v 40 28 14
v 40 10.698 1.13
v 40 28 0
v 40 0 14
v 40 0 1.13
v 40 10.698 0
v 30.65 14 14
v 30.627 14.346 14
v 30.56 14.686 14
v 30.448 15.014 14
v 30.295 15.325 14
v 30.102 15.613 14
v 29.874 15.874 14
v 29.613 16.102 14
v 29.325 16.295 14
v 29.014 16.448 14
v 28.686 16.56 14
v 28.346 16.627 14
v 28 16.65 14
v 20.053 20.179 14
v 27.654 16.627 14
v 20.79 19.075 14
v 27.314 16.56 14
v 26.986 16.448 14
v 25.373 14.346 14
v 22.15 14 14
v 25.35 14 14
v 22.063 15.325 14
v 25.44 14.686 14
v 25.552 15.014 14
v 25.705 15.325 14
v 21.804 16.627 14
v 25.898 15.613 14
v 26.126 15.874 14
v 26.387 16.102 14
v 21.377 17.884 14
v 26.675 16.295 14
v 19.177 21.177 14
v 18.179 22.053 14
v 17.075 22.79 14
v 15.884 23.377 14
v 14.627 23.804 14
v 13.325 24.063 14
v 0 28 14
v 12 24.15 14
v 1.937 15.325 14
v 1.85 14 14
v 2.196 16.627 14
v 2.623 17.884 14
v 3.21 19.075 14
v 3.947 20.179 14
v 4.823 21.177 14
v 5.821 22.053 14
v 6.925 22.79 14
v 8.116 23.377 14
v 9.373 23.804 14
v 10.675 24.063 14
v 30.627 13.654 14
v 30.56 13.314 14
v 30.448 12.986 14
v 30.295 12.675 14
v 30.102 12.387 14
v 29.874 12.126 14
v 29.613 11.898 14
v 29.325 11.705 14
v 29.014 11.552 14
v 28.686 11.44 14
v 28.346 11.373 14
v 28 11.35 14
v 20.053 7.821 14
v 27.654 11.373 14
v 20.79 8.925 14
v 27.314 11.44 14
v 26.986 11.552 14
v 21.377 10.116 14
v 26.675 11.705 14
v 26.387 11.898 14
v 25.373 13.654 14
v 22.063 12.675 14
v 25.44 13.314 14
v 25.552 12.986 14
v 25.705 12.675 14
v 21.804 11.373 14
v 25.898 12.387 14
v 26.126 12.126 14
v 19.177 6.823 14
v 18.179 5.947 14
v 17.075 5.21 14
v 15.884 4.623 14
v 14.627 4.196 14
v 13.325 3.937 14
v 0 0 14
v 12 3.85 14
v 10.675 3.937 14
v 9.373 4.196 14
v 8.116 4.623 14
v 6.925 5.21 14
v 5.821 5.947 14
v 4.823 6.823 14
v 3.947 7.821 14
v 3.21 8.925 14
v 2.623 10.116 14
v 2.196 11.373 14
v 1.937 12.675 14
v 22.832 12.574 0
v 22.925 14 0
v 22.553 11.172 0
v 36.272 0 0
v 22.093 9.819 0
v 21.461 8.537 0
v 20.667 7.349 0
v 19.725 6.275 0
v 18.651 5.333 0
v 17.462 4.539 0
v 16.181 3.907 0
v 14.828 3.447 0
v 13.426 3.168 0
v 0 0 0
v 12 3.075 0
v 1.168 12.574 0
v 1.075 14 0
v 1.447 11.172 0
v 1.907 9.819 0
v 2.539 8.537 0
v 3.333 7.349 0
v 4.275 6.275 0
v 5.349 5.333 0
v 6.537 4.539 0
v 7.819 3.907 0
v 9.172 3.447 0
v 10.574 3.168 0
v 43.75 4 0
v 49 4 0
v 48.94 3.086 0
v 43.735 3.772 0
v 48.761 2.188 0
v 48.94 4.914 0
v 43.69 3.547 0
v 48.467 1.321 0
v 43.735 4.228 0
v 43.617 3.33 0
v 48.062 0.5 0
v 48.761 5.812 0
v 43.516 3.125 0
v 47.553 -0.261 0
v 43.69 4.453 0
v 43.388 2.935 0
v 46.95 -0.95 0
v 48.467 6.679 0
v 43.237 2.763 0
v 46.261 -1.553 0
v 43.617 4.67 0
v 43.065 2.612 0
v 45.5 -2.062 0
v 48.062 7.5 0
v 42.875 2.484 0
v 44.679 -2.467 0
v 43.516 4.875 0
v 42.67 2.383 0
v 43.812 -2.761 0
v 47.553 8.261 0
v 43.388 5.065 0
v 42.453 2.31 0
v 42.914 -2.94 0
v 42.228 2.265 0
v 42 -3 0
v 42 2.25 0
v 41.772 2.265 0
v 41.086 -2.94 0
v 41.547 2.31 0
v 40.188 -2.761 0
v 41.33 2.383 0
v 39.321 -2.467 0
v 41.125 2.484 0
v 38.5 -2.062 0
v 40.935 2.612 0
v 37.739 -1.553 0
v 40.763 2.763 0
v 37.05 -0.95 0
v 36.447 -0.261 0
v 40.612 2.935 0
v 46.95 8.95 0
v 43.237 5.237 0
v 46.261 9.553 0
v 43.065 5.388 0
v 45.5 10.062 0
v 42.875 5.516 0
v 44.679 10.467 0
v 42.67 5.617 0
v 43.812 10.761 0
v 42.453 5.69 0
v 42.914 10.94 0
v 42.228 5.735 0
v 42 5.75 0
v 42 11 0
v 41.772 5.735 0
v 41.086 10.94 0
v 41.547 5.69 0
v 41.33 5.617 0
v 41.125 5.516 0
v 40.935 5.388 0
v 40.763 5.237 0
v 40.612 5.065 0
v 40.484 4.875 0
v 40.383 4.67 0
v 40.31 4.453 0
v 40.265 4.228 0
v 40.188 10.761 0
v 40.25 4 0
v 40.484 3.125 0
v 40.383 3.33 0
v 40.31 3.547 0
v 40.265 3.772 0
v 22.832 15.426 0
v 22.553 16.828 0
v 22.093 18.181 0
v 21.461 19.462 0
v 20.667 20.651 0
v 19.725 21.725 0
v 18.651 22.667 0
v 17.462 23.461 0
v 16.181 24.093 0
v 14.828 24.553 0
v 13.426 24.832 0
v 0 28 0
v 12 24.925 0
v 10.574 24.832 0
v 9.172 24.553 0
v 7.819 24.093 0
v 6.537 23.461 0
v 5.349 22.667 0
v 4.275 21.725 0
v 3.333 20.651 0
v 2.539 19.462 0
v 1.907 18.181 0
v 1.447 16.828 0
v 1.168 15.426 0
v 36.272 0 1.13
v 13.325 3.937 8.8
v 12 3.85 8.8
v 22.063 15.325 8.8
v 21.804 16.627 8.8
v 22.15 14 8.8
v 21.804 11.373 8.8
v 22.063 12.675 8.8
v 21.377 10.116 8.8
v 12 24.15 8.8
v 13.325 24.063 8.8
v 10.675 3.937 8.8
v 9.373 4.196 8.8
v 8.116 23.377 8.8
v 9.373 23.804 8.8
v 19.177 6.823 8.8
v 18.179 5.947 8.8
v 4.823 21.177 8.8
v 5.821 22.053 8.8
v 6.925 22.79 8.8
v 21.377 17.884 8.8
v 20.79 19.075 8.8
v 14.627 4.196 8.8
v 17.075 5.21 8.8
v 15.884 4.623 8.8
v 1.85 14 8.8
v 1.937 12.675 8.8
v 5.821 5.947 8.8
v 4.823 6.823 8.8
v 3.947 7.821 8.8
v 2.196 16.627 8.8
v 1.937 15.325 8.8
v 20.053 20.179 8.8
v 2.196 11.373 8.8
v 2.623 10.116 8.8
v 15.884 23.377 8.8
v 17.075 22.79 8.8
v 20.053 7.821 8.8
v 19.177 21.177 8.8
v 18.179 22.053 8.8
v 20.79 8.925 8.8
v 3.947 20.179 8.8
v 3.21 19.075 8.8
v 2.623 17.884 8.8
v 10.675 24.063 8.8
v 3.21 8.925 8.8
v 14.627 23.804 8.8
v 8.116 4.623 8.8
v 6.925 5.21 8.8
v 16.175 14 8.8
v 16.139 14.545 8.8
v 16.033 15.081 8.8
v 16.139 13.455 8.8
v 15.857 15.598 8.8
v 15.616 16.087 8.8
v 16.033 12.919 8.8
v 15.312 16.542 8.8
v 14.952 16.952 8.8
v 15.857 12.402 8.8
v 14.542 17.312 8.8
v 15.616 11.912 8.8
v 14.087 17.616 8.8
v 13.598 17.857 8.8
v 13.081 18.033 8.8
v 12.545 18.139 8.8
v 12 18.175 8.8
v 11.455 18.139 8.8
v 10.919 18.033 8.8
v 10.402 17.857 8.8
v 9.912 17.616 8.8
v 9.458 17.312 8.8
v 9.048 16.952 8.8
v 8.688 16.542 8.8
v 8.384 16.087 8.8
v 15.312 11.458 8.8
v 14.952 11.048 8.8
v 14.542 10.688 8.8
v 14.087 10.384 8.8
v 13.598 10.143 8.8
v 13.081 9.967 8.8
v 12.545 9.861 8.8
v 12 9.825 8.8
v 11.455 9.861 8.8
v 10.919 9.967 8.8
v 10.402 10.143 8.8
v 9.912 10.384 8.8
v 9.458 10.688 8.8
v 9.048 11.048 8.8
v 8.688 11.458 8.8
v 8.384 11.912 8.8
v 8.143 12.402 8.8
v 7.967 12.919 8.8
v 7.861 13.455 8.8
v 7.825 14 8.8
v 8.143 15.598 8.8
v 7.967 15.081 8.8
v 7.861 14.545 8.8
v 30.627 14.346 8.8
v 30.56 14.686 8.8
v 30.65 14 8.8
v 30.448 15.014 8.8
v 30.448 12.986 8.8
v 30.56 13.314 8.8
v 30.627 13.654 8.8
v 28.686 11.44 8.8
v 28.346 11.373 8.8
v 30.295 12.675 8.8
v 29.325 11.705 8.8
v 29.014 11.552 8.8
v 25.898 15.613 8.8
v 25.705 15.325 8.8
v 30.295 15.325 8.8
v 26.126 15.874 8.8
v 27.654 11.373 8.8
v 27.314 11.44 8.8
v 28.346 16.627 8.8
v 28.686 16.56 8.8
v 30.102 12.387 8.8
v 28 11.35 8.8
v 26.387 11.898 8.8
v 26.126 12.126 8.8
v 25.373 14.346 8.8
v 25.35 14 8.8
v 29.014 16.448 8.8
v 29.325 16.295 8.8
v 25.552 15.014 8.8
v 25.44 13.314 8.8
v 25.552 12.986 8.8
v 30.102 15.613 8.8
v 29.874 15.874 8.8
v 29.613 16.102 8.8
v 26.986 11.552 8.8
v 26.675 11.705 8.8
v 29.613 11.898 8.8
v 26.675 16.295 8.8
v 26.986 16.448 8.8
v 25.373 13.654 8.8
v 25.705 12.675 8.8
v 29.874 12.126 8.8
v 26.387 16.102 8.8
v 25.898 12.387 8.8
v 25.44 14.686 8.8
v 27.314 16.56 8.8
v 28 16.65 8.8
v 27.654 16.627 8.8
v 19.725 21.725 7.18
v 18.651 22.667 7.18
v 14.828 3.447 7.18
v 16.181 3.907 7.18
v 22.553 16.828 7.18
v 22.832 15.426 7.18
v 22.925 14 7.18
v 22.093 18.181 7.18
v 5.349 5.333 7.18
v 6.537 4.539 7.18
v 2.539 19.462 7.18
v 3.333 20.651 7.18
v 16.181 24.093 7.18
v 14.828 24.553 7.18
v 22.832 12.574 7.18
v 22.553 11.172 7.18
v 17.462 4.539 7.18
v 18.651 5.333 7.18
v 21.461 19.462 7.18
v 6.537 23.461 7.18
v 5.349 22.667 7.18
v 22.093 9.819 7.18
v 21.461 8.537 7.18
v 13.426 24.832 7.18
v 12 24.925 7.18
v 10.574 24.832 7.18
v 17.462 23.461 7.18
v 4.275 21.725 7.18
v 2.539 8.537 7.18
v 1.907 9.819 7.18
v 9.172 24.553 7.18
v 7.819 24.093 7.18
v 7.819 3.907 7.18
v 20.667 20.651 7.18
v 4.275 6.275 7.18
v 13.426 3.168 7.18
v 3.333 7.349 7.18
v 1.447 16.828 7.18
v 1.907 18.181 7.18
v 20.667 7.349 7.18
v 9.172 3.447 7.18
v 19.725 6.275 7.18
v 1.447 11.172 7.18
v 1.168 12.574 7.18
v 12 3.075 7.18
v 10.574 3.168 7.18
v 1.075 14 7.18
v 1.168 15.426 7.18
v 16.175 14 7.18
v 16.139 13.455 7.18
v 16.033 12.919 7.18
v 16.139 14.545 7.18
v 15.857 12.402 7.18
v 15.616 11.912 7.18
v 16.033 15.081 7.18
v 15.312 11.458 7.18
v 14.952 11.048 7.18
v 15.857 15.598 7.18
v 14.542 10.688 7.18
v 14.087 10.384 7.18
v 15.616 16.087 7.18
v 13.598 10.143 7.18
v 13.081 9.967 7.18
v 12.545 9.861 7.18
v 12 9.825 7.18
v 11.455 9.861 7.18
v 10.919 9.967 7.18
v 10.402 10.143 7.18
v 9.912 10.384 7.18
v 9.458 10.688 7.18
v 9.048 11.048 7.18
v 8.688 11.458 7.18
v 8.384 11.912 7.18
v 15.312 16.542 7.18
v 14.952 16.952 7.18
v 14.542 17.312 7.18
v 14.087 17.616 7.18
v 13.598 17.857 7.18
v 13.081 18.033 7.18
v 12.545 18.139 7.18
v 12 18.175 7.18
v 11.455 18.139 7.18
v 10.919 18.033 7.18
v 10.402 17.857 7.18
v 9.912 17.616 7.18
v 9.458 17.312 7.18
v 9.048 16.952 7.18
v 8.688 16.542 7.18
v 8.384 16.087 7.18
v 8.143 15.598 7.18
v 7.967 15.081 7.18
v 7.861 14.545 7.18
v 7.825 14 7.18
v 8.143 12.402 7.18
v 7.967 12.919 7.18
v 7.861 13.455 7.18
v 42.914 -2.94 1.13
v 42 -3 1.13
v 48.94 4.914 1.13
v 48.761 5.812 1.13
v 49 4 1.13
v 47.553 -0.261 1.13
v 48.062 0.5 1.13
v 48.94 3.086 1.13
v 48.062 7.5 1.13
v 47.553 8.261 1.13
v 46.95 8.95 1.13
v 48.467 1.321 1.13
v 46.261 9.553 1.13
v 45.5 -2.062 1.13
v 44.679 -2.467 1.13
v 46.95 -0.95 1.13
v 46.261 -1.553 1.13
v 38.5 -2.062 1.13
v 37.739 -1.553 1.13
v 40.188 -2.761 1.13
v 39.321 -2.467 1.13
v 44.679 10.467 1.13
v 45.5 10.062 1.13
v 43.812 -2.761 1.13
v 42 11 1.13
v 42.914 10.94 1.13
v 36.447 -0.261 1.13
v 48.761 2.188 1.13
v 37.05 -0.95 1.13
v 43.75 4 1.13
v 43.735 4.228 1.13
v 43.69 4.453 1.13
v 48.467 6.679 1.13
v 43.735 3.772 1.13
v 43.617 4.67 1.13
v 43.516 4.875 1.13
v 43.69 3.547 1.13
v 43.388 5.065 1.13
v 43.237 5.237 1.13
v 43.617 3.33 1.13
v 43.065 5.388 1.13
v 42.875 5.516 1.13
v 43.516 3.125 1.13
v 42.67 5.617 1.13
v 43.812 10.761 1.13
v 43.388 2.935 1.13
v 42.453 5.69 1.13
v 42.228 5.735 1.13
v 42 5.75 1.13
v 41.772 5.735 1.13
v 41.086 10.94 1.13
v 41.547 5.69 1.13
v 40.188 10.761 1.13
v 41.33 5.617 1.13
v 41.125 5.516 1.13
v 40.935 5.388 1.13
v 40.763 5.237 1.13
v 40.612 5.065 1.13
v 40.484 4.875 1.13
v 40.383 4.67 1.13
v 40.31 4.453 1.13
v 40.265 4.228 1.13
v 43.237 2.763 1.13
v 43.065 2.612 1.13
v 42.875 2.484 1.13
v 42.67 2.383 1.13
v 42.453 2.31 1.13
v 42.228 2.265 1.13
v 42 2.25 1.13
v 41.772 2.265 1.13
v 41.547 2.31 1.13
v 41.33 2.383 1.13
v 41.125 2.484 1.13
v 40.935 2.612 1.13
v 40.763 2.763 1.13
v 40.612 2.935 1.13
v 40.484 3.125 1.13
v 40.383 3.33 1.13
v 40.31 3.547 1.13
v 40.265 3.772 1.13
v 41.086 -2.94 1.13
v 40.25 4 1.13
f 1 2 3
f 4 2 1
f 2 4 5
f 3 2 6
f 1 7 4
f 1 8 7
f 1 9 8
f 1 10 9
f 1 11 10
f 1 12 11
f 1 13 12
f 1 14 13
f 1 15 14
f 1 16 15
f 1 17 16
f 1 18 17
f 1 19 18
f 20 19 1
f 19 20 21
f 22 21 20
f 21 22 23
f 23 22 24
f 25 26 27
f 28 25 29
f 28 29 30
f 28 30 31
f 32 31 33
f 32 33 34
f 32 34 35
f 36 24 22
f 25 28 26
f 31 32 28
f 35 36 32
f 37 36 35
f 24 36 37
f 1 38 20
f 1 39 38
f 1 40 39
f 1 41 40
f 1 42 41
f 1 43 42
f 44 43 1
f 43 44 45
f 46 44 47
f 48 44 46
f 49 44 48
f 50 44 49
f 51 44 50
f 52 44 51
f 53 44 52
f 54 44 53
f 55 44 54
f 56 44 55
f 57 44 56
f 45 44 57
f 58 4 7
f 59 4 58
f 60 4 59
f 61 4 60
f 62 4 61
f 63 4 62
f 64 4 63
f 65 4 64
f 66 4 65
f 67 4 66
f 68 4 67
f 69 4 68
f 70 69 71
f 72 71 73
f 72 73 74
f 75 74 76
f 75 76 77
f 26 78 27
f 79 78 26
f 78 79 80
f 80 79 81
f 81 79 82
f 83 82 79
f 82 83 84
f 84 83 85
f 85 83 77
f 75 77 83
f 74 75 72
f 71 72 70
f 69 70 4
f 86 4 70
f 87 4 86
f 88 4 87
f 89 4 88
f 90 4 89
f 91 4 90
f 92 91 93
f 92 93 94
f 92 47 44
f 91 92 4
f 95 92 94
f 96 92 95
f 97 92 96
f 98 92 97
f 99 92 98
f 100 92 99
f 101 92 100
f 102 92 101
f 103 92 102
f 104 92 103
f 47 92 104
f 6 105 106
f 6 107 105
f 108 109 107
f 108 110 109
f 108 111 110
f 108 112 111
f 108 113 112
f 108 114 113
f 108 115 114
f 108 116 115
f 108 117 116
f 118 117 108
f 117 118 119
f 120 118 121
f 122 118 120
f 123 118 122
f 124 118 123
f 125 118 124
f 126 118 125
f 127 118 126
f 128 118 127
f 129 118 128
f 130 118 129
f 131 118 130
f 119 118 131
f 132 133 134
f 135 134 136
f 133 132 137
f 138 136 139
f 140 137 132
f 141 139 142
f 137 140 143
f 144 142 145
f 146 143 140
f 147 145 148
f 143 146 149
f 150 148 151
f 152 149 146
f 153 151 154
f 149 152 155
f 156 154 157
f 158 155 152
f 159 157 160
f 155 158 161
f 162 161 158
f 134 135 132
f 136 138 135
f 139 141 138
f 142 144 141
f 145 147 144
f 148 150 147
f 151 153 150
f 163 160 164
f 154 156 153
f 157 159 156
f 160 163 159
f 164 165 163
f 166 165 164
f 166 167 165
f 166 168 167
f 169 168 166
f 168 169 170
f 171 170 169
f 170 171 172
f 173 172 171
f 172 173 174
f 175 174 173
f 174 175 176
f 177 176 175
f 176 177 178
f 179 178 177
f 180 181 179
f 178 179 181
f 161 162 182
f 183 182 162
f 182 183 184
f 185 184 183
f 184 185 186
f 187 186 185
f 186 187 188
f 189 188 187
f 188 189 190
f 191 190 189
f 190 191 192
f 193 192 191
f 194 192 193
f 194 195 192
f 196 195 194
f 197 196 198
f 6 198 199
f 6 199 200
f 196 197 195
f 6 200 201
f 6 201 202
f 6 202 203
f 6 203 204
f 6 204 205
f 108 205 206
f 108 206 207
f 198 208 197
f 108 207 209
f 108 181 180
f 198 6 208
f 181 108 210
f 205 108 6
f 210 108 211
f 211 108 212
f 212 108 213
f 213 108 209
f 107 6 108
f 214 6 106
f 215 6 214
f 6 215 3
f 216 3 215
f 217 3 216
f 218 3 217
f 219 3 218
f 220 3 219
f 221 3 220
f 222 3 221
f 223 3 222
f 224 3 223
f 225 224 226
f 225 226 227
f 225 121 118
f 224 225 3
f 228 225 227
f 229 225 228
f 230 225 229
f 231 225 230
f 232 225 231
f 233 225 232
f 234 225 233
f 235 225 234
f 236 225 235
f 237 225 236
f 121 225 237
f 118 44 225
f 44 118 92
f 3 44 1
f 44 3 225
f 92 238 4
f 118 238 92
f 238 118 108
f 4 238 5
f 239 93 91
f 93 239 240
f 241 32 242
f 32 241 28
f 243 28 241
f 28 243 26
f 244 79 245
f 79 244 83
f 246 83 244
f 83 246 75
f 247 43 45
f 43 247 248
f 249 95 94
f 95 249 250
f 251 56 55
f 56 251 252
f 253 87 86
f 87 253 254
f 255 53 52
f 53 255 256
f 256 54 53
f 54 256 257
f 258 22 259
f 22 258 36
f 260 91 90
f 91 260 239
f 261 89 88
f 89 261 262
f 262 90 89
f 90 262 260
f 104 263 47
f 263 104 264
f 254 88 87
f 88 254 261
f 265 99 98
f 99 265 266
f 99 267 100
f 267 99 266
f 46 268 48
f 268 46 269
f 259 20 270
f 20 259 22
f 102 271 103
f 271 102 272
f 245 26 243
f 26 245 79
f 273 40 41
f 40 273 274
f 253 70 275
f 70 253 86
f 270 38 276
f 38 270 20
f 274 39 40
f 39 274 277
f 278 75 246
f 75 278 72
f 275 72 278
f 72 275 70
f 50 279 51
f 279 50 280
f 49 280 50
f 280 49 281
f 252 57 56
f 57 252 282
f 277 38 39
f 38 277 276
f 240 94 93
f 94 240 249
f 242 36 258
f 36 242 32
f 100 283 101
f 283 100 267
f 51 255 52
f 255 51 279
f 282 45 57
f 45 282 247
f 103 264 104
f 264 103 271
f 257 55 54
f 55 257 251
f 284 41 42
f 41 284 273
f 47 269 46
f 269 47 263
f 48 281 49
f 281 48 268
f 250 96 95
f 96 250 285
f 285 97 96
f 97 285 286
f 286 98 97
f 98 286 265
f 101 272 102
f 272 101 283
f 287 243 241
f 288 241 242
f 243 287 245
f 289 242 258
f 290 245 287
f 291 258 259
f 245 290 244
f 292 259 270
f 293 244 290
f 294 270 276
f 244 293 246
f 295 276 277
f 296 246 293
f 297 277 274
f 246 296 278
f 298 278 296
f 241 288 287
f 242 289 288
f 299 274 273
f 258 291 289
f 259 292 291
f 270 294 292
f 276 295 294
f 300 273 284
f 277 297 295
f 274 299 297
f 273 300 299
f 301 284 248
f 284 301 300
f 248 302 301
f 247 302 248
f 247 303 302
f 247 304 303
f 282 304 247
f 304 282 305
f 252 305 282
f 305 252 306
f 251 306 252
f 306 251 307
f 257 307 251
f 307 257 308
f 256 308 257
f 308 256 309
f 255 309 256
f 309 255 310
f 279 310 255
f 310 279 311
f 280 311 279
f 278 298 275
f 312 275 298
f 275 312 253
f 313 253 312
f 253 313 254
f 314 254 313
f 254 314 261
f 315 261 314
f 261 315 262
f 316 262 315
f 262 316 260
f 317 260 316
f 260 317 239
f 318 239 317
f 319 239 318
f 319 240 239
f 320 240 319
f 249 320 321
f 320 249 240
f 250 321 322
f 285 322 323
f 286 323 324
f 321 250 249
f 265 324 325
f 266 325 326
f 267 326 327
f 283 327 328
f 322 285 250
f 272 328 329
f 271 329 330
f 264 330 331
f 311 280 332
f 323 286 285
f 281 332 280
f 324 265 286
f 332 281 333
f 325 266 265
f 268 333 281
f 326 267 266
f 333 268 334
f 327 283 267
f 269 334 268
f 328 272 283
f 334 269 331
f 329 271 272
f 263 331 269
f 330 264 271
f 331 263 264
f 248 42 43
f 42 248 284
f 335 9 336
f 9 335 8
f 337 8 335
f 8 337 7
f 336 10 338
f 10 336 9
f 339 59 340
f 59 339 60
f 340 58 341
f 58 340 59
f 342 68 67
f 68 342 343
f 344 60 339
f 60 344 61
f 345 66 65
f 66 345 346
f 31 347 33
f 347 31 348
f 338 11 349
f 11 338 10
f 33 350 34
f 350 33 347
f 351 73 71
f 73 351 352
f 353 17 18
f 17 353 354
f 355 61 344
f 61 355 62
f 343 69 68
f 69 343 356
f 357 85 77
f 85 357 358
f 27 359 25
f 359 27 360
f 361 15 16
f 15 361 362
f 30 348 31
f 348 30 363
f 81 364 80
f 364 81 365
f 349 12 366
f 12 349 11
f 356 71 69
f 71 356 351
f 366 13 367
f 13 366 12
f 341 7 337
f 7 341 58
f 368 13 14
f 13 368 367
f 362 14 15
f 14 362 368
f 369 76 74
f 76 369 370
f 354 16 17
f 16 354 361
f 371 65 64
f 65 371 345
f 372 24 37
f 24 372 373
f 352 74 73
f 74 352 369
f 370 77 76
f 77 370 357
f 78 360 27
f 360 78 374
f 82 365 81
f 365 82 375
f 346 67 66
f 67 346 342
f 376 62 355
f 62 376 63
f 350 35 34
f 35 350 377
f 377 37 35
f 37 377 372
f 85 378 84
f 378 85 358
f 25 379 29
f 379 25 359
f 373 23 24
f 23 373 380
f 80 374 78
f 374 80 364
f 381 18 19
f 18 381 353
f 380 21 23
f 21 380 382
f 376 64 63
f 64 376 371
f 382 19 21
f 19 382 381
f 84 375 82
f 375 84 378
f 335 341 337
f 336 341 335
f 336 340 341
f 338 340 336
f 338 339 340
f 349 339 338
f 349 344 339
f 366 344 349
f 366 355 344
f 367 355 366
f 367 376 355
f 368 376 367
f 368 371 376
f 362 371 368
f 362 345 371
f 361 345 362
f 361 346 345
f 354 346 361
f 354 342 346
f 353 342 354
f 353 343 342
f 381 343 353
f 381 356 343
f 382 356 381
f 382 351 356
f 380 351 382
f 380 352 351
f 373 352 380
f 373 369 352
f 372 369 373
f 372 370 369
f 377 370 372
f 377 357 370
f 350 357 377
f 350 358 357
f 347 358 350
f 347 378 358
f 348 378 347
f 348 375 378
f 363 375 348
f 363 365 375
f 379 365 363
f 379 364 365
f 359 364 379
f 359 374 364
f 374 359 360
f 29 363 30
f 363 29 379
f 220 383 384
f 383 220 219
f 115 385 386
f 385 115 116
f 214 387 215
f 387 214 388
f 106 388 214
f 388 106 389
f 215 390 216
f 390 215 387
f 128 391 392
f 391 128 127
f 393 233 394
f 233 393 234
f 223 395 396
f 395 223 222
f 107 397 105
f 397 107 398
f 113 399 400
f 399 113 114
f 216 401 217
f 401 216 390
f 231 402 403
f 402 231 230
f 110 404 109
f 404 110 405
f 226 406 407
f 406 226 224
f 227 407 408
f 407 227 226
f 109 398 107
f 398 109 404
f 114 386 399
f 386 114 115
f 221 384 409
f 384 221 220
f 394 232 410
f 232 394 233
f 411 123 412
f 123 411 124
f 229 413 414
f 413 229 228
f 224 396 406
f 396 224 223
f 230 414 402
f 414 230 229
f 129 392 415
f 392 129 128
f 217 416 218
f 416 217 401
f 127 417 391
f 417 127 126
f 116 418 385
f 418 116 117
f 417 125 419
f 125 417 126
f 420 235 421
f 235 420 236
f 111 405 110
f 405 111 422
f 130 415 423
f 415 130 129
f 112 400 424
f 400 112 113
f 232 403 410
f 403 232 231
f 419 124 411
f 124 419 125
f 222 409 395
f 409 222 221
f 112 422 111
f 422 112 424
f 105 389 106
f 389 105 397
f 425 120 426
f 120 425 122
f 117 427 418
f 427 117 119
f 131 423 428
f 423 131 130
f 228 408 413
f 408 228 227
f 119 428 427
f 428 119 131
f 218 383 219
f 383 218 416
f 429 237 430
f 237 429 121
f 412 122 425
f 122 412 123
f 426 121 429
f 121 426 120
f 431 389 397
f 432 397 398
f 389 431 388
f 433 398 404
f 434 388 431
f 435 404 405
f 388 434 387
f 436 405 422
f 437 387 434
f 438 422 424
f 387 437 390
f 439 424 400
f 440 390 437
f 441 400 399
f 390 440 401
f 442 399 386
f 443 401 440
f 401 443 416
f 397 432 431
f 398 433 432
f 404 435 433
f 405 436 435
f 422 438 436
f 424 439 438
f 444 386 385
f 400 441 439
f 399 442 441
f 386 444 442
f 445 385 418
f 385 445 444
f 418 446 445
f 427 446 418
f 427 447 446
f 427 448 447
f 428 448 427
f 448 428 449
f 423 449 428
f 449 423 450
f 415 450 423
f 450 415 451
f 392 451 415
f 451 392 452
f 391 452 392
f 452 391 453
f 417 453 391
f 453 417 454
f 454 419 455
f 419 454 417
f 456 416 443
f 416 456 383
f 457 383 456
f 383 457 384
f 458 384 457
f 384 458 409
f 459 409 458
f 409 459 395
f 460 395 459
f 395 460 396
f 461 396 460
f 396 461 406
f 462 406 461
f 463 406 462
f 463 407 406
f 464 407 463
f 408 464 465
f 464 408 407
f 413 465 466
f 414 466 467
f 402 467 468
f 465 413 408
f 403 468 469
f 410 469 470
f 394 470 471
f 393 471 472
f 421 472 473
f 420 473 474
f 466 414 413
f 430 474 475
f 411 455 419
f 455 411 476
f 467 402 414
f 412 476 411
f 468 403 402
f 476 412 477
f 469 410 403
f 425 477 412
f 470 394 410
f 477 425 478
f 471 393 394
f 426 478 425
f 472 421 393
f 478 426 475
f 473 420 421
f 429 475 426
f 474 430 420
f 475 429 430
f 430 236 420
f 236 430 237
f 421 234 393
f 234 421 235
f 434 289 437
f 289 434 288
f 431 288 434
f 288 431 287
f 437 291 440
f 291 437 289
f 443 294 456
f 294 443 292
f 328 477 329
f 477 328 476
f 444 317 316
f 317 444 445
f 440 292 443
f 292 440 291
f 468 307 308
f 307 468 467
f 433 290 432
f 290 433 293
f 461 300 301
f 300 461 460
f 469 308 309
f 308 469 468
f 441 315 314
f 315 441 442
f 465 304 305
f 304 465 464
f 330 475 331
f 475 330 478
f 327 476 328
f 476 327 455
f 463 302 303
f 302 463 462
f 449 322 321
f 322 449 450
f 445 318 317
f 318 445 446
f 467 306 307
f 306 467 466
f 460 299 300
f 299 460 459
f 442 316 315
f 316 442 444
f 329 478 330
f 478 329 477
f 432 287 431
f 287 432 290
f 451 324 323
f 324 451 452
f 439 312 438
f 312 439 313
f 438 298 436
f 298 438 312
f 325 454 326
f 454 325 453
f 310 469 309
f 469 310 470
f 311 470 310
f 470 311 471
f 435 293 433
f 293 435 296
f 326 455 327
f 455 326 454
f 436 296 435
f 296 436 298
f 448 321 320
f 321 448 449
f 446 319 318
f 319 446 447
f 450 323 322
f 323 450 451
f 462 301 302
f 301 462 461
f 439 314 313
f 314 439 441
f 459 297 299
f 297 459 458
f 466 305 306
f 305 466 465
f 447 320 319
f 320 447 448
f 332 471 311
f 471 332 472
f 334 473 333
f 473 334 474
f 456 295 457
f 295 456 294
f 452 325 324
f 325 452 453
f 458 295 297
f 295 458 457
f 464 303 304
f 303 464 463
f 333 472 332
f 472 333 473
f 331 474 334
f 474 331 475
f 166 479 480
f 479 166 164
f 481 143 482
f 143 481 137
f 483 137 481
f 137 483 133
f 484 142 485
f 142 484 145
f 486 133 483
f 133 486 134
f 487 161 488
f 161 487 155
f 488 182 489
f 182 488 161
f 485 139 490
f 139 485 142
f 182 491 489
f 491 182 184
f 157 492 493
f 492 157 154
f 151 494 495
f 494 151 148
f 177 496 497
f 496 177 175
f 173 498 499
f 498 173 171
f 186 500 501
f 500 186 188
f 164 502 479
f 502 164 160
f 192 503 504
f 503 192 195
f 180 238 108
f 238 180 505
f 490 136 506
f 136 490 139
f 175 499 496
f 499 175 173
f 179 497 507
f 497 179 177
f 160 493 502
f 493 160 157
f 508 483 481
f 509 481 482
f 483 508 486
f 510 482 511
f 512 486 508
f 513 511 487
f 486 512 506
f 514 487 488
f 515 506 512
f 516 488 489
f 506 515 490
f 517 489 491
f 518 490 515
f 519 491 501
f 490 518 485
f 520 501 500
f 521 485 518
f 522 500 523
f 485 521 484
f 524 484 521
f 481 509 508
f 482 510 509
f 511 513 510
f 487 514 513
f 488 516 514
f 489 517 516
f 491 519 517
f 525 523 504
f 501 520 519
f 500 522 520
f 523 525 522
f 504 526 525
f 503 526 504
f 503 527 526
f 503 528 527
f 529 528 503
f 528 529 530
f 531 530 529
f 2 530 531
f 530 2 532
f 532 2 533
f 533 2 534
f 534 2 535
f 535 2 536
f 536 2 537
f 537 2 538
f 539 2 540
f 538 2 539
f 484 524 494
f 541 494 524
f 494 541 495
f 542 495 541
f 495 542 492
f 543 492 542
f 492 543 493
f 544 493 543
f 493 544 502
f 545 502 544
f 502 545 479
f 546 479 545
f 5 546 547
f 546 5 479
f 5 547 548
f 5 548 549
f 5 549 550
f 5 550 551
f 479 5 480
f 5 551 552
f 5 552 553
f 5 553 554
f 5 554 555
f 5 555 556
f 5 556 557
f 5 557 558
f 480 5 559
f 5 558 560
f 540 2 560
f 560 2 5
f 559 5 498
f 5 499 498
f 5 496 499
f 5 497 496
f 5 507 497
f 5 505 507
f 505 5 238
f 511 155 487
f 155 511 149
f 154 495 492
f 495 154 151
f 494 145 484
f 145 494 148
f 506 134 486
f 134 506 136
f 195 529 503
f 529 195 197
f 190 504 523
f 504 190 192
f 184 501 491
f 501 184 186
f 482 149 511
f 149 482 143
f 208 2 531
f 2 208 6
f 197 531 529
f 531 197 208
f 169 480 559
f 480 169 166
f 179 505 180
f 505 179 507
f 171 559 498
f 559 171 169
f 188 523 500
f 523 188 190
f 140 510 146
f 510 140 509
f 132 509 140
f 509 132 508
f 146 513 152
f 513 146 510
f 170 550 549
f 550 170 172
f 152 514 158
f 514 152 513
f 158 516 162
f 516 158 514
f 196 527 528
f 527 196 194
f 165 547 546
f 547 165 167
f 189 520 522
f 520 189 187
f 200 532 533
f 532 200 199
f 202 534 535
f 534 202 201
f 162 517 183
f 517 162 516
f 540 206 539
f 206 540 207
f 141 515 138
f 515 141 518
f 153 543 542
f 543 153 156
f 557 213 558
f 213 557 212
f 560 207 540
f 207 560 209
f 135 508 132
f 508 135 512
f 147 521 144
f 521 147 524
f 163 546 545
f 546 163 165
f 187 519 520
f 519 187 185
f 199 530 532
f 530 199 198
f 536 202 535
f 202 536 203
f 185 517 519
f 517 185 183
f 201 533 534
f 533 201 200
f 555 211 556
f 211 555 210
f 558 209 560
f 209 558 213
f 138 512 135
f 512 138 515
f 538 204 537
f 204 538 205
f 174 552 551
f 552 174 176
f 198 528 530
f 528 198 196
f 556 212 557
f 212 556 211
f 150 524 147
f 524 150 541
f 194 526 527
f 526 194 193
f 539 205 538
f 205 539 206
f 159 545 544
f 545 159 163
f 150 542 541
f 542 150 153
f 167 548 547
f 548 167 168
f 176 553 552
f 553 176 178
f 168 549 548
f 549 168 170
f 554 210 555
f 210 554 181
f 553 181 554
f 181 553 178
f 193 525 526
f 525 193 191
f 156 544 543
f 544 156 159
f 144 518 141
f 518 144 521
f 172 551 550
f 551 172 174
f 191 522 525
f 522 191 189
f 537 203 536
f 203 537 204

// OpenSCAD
// file: parameters.scad
// =============================================================================
// Gen-AN Dual-rotor copper-centroid hyper AFPM - WOUND-AWARE (HARD GATE)
// PRIMARY challenger vs Gen-AK. Magnets @ R=39.5 + 200 t + former_web 1.30 -> m2m 4.76.
// =============================================================================

// --- Wire / wind budget (26 AWG, ~1 lb spool ~ 390 m bare-equiv) --------------
wire_awg            = 26;
wire_od             = 0.45;     // insulated OD mm
turns               = 200;      // +10 vs Gen-AK 190
fill                = 0.70;
layers_per_face     = 2;        // axial layers proud of EACH flange
wind_build_axial    = layers_per_face * wire_od * fill;   // 0.63 mm
wind_build_radial   = 3 * wire_od * fill;                 // 0.945 mm

// --- Pancake former (bare STL) -----------------------------------------------
coil_id_r           = 15.5;     // copper-centroid window centered ~R=39.5
coil_od_r           = 63.5;
span_deg            = 26.0;     // 12 stations x 30 deg pitch
former_web          = 1.30;     // thinner vs AK 1.40 (print-safe >=1.30)
flange_t            = 0.60;
wall                = 1.2;
slot_w              = 2.4;
mount_hole          = 3.5;
tab_len             = 7.0;

former_bare_h       = former_web + 2 * flange_t;            // 2.50 mm
coil_envelope_h     = former_bare_h + 2 * wind_build_axial; // 3.76 mm

// --- Running clearance (magnet face -> WOUND face) EACH side ------------------
run_clear           = 0.50;     // PASS floor >= 0.5
gap_spacer_h        = run_clear + wind_build_axial;         // 1.13 mm
m2m                 = coil_envelope_h + 2 * run_clear;      // 4.76 mm (beats Gen-AK 4.86)

// --- Mid stator (12 pancakes 3ph; winds proud both faces) ---------------------
coil_stations       = 12;
bay_r_in            = coil_id_r - 2.0 - wind_build_radial;
bay_r_out           = coil_od_r + 2.0 + wind_build_radial;
bay_span            = span_deg + 4.0;
bay_offset          = 2.0;
stator_thick        = former_bare_h;                        // winds proud +/-Z
stator_od           = 160.0;
shaft_clear_stator  = 34.0;
coil_mount_r        = 25.5;

// --- Rotors (x2) - 8xO20 @ R=39.5 (copper centroid) + 24xO5 Halbach ----------
large_pocket_d      = 20.3;
small_pocket_d      = 5.3;
pocket_h            = 5.2;
large_n             = 8;
R_large             = 39.5;     // covers ~29.5-49.5 over copper centroid ~39.5
R_small_inner       = 24.5;
R_small_mid         = 39.5;
R_small_outer       = 56.5;
carrier_od          = 156.0;
carrier_thick       = 7.5;
hub_h               = 10.0;
hub_od              = 30.0;
rotor_b_offset_deg  = 22.5;

// --- Modular MAX interface (Gen-E family) ------------------------------------
shaft_bore          = 8.35;
bearing_d           = 21.85;
bearing_h           = 7.2;
m3_clear            = 3.5;
bolt_r_inner        = 36.0;
bolt_n_inner        = 6;
flange_bolt_r       = 72.0;
flange_bolt_n       = 6;
brace_r             = 68.0;
brace_d             = 4.3;
brace_n             = 4;

spacer_pad_od       = 14.0;
spacer_pad_id       = m3_clear;
endbell_od          = 160.0;
endbell_thick       = 8.0;
endbell_shaft_clear = 10.0;

$fn = 64;
// main file
// Gen-AN fit coupon — magnet pockets + 608 + spacer height
include <parameters.scad>;
$fn = 48;
block_w = 40; block_d = 28; block_h = 14;
difference() {
    cube([block_w, block_d, block_h]);
    translate([12, block_d/2, block_h - pocket_h])
        cylinder(d=large_pocket_d, h=pocket_h + 0.2);
    translate([28, block_d/2, block_h - pocket_h])
        cylinder(d=small_pocket_d, h=pocket_h + 0.2);
    translate([12, block_d/2, -0.02])
        cylinder(d=bearing_d, h=bearing_h);
    translate([12, block_d/2, -0.1])
        cylinder(d=shaft_bore, h=block_h + 1);
}
translate([block_w + 2, 4, 0])
    difference() {
        cylinder(d=spacer_pad_od, h=gap_spacer_h);
        translate([0, 0, -0.1]) cylinder(d=spacer_pad_id, h=gap_spacer_h + 0.2);
    }
